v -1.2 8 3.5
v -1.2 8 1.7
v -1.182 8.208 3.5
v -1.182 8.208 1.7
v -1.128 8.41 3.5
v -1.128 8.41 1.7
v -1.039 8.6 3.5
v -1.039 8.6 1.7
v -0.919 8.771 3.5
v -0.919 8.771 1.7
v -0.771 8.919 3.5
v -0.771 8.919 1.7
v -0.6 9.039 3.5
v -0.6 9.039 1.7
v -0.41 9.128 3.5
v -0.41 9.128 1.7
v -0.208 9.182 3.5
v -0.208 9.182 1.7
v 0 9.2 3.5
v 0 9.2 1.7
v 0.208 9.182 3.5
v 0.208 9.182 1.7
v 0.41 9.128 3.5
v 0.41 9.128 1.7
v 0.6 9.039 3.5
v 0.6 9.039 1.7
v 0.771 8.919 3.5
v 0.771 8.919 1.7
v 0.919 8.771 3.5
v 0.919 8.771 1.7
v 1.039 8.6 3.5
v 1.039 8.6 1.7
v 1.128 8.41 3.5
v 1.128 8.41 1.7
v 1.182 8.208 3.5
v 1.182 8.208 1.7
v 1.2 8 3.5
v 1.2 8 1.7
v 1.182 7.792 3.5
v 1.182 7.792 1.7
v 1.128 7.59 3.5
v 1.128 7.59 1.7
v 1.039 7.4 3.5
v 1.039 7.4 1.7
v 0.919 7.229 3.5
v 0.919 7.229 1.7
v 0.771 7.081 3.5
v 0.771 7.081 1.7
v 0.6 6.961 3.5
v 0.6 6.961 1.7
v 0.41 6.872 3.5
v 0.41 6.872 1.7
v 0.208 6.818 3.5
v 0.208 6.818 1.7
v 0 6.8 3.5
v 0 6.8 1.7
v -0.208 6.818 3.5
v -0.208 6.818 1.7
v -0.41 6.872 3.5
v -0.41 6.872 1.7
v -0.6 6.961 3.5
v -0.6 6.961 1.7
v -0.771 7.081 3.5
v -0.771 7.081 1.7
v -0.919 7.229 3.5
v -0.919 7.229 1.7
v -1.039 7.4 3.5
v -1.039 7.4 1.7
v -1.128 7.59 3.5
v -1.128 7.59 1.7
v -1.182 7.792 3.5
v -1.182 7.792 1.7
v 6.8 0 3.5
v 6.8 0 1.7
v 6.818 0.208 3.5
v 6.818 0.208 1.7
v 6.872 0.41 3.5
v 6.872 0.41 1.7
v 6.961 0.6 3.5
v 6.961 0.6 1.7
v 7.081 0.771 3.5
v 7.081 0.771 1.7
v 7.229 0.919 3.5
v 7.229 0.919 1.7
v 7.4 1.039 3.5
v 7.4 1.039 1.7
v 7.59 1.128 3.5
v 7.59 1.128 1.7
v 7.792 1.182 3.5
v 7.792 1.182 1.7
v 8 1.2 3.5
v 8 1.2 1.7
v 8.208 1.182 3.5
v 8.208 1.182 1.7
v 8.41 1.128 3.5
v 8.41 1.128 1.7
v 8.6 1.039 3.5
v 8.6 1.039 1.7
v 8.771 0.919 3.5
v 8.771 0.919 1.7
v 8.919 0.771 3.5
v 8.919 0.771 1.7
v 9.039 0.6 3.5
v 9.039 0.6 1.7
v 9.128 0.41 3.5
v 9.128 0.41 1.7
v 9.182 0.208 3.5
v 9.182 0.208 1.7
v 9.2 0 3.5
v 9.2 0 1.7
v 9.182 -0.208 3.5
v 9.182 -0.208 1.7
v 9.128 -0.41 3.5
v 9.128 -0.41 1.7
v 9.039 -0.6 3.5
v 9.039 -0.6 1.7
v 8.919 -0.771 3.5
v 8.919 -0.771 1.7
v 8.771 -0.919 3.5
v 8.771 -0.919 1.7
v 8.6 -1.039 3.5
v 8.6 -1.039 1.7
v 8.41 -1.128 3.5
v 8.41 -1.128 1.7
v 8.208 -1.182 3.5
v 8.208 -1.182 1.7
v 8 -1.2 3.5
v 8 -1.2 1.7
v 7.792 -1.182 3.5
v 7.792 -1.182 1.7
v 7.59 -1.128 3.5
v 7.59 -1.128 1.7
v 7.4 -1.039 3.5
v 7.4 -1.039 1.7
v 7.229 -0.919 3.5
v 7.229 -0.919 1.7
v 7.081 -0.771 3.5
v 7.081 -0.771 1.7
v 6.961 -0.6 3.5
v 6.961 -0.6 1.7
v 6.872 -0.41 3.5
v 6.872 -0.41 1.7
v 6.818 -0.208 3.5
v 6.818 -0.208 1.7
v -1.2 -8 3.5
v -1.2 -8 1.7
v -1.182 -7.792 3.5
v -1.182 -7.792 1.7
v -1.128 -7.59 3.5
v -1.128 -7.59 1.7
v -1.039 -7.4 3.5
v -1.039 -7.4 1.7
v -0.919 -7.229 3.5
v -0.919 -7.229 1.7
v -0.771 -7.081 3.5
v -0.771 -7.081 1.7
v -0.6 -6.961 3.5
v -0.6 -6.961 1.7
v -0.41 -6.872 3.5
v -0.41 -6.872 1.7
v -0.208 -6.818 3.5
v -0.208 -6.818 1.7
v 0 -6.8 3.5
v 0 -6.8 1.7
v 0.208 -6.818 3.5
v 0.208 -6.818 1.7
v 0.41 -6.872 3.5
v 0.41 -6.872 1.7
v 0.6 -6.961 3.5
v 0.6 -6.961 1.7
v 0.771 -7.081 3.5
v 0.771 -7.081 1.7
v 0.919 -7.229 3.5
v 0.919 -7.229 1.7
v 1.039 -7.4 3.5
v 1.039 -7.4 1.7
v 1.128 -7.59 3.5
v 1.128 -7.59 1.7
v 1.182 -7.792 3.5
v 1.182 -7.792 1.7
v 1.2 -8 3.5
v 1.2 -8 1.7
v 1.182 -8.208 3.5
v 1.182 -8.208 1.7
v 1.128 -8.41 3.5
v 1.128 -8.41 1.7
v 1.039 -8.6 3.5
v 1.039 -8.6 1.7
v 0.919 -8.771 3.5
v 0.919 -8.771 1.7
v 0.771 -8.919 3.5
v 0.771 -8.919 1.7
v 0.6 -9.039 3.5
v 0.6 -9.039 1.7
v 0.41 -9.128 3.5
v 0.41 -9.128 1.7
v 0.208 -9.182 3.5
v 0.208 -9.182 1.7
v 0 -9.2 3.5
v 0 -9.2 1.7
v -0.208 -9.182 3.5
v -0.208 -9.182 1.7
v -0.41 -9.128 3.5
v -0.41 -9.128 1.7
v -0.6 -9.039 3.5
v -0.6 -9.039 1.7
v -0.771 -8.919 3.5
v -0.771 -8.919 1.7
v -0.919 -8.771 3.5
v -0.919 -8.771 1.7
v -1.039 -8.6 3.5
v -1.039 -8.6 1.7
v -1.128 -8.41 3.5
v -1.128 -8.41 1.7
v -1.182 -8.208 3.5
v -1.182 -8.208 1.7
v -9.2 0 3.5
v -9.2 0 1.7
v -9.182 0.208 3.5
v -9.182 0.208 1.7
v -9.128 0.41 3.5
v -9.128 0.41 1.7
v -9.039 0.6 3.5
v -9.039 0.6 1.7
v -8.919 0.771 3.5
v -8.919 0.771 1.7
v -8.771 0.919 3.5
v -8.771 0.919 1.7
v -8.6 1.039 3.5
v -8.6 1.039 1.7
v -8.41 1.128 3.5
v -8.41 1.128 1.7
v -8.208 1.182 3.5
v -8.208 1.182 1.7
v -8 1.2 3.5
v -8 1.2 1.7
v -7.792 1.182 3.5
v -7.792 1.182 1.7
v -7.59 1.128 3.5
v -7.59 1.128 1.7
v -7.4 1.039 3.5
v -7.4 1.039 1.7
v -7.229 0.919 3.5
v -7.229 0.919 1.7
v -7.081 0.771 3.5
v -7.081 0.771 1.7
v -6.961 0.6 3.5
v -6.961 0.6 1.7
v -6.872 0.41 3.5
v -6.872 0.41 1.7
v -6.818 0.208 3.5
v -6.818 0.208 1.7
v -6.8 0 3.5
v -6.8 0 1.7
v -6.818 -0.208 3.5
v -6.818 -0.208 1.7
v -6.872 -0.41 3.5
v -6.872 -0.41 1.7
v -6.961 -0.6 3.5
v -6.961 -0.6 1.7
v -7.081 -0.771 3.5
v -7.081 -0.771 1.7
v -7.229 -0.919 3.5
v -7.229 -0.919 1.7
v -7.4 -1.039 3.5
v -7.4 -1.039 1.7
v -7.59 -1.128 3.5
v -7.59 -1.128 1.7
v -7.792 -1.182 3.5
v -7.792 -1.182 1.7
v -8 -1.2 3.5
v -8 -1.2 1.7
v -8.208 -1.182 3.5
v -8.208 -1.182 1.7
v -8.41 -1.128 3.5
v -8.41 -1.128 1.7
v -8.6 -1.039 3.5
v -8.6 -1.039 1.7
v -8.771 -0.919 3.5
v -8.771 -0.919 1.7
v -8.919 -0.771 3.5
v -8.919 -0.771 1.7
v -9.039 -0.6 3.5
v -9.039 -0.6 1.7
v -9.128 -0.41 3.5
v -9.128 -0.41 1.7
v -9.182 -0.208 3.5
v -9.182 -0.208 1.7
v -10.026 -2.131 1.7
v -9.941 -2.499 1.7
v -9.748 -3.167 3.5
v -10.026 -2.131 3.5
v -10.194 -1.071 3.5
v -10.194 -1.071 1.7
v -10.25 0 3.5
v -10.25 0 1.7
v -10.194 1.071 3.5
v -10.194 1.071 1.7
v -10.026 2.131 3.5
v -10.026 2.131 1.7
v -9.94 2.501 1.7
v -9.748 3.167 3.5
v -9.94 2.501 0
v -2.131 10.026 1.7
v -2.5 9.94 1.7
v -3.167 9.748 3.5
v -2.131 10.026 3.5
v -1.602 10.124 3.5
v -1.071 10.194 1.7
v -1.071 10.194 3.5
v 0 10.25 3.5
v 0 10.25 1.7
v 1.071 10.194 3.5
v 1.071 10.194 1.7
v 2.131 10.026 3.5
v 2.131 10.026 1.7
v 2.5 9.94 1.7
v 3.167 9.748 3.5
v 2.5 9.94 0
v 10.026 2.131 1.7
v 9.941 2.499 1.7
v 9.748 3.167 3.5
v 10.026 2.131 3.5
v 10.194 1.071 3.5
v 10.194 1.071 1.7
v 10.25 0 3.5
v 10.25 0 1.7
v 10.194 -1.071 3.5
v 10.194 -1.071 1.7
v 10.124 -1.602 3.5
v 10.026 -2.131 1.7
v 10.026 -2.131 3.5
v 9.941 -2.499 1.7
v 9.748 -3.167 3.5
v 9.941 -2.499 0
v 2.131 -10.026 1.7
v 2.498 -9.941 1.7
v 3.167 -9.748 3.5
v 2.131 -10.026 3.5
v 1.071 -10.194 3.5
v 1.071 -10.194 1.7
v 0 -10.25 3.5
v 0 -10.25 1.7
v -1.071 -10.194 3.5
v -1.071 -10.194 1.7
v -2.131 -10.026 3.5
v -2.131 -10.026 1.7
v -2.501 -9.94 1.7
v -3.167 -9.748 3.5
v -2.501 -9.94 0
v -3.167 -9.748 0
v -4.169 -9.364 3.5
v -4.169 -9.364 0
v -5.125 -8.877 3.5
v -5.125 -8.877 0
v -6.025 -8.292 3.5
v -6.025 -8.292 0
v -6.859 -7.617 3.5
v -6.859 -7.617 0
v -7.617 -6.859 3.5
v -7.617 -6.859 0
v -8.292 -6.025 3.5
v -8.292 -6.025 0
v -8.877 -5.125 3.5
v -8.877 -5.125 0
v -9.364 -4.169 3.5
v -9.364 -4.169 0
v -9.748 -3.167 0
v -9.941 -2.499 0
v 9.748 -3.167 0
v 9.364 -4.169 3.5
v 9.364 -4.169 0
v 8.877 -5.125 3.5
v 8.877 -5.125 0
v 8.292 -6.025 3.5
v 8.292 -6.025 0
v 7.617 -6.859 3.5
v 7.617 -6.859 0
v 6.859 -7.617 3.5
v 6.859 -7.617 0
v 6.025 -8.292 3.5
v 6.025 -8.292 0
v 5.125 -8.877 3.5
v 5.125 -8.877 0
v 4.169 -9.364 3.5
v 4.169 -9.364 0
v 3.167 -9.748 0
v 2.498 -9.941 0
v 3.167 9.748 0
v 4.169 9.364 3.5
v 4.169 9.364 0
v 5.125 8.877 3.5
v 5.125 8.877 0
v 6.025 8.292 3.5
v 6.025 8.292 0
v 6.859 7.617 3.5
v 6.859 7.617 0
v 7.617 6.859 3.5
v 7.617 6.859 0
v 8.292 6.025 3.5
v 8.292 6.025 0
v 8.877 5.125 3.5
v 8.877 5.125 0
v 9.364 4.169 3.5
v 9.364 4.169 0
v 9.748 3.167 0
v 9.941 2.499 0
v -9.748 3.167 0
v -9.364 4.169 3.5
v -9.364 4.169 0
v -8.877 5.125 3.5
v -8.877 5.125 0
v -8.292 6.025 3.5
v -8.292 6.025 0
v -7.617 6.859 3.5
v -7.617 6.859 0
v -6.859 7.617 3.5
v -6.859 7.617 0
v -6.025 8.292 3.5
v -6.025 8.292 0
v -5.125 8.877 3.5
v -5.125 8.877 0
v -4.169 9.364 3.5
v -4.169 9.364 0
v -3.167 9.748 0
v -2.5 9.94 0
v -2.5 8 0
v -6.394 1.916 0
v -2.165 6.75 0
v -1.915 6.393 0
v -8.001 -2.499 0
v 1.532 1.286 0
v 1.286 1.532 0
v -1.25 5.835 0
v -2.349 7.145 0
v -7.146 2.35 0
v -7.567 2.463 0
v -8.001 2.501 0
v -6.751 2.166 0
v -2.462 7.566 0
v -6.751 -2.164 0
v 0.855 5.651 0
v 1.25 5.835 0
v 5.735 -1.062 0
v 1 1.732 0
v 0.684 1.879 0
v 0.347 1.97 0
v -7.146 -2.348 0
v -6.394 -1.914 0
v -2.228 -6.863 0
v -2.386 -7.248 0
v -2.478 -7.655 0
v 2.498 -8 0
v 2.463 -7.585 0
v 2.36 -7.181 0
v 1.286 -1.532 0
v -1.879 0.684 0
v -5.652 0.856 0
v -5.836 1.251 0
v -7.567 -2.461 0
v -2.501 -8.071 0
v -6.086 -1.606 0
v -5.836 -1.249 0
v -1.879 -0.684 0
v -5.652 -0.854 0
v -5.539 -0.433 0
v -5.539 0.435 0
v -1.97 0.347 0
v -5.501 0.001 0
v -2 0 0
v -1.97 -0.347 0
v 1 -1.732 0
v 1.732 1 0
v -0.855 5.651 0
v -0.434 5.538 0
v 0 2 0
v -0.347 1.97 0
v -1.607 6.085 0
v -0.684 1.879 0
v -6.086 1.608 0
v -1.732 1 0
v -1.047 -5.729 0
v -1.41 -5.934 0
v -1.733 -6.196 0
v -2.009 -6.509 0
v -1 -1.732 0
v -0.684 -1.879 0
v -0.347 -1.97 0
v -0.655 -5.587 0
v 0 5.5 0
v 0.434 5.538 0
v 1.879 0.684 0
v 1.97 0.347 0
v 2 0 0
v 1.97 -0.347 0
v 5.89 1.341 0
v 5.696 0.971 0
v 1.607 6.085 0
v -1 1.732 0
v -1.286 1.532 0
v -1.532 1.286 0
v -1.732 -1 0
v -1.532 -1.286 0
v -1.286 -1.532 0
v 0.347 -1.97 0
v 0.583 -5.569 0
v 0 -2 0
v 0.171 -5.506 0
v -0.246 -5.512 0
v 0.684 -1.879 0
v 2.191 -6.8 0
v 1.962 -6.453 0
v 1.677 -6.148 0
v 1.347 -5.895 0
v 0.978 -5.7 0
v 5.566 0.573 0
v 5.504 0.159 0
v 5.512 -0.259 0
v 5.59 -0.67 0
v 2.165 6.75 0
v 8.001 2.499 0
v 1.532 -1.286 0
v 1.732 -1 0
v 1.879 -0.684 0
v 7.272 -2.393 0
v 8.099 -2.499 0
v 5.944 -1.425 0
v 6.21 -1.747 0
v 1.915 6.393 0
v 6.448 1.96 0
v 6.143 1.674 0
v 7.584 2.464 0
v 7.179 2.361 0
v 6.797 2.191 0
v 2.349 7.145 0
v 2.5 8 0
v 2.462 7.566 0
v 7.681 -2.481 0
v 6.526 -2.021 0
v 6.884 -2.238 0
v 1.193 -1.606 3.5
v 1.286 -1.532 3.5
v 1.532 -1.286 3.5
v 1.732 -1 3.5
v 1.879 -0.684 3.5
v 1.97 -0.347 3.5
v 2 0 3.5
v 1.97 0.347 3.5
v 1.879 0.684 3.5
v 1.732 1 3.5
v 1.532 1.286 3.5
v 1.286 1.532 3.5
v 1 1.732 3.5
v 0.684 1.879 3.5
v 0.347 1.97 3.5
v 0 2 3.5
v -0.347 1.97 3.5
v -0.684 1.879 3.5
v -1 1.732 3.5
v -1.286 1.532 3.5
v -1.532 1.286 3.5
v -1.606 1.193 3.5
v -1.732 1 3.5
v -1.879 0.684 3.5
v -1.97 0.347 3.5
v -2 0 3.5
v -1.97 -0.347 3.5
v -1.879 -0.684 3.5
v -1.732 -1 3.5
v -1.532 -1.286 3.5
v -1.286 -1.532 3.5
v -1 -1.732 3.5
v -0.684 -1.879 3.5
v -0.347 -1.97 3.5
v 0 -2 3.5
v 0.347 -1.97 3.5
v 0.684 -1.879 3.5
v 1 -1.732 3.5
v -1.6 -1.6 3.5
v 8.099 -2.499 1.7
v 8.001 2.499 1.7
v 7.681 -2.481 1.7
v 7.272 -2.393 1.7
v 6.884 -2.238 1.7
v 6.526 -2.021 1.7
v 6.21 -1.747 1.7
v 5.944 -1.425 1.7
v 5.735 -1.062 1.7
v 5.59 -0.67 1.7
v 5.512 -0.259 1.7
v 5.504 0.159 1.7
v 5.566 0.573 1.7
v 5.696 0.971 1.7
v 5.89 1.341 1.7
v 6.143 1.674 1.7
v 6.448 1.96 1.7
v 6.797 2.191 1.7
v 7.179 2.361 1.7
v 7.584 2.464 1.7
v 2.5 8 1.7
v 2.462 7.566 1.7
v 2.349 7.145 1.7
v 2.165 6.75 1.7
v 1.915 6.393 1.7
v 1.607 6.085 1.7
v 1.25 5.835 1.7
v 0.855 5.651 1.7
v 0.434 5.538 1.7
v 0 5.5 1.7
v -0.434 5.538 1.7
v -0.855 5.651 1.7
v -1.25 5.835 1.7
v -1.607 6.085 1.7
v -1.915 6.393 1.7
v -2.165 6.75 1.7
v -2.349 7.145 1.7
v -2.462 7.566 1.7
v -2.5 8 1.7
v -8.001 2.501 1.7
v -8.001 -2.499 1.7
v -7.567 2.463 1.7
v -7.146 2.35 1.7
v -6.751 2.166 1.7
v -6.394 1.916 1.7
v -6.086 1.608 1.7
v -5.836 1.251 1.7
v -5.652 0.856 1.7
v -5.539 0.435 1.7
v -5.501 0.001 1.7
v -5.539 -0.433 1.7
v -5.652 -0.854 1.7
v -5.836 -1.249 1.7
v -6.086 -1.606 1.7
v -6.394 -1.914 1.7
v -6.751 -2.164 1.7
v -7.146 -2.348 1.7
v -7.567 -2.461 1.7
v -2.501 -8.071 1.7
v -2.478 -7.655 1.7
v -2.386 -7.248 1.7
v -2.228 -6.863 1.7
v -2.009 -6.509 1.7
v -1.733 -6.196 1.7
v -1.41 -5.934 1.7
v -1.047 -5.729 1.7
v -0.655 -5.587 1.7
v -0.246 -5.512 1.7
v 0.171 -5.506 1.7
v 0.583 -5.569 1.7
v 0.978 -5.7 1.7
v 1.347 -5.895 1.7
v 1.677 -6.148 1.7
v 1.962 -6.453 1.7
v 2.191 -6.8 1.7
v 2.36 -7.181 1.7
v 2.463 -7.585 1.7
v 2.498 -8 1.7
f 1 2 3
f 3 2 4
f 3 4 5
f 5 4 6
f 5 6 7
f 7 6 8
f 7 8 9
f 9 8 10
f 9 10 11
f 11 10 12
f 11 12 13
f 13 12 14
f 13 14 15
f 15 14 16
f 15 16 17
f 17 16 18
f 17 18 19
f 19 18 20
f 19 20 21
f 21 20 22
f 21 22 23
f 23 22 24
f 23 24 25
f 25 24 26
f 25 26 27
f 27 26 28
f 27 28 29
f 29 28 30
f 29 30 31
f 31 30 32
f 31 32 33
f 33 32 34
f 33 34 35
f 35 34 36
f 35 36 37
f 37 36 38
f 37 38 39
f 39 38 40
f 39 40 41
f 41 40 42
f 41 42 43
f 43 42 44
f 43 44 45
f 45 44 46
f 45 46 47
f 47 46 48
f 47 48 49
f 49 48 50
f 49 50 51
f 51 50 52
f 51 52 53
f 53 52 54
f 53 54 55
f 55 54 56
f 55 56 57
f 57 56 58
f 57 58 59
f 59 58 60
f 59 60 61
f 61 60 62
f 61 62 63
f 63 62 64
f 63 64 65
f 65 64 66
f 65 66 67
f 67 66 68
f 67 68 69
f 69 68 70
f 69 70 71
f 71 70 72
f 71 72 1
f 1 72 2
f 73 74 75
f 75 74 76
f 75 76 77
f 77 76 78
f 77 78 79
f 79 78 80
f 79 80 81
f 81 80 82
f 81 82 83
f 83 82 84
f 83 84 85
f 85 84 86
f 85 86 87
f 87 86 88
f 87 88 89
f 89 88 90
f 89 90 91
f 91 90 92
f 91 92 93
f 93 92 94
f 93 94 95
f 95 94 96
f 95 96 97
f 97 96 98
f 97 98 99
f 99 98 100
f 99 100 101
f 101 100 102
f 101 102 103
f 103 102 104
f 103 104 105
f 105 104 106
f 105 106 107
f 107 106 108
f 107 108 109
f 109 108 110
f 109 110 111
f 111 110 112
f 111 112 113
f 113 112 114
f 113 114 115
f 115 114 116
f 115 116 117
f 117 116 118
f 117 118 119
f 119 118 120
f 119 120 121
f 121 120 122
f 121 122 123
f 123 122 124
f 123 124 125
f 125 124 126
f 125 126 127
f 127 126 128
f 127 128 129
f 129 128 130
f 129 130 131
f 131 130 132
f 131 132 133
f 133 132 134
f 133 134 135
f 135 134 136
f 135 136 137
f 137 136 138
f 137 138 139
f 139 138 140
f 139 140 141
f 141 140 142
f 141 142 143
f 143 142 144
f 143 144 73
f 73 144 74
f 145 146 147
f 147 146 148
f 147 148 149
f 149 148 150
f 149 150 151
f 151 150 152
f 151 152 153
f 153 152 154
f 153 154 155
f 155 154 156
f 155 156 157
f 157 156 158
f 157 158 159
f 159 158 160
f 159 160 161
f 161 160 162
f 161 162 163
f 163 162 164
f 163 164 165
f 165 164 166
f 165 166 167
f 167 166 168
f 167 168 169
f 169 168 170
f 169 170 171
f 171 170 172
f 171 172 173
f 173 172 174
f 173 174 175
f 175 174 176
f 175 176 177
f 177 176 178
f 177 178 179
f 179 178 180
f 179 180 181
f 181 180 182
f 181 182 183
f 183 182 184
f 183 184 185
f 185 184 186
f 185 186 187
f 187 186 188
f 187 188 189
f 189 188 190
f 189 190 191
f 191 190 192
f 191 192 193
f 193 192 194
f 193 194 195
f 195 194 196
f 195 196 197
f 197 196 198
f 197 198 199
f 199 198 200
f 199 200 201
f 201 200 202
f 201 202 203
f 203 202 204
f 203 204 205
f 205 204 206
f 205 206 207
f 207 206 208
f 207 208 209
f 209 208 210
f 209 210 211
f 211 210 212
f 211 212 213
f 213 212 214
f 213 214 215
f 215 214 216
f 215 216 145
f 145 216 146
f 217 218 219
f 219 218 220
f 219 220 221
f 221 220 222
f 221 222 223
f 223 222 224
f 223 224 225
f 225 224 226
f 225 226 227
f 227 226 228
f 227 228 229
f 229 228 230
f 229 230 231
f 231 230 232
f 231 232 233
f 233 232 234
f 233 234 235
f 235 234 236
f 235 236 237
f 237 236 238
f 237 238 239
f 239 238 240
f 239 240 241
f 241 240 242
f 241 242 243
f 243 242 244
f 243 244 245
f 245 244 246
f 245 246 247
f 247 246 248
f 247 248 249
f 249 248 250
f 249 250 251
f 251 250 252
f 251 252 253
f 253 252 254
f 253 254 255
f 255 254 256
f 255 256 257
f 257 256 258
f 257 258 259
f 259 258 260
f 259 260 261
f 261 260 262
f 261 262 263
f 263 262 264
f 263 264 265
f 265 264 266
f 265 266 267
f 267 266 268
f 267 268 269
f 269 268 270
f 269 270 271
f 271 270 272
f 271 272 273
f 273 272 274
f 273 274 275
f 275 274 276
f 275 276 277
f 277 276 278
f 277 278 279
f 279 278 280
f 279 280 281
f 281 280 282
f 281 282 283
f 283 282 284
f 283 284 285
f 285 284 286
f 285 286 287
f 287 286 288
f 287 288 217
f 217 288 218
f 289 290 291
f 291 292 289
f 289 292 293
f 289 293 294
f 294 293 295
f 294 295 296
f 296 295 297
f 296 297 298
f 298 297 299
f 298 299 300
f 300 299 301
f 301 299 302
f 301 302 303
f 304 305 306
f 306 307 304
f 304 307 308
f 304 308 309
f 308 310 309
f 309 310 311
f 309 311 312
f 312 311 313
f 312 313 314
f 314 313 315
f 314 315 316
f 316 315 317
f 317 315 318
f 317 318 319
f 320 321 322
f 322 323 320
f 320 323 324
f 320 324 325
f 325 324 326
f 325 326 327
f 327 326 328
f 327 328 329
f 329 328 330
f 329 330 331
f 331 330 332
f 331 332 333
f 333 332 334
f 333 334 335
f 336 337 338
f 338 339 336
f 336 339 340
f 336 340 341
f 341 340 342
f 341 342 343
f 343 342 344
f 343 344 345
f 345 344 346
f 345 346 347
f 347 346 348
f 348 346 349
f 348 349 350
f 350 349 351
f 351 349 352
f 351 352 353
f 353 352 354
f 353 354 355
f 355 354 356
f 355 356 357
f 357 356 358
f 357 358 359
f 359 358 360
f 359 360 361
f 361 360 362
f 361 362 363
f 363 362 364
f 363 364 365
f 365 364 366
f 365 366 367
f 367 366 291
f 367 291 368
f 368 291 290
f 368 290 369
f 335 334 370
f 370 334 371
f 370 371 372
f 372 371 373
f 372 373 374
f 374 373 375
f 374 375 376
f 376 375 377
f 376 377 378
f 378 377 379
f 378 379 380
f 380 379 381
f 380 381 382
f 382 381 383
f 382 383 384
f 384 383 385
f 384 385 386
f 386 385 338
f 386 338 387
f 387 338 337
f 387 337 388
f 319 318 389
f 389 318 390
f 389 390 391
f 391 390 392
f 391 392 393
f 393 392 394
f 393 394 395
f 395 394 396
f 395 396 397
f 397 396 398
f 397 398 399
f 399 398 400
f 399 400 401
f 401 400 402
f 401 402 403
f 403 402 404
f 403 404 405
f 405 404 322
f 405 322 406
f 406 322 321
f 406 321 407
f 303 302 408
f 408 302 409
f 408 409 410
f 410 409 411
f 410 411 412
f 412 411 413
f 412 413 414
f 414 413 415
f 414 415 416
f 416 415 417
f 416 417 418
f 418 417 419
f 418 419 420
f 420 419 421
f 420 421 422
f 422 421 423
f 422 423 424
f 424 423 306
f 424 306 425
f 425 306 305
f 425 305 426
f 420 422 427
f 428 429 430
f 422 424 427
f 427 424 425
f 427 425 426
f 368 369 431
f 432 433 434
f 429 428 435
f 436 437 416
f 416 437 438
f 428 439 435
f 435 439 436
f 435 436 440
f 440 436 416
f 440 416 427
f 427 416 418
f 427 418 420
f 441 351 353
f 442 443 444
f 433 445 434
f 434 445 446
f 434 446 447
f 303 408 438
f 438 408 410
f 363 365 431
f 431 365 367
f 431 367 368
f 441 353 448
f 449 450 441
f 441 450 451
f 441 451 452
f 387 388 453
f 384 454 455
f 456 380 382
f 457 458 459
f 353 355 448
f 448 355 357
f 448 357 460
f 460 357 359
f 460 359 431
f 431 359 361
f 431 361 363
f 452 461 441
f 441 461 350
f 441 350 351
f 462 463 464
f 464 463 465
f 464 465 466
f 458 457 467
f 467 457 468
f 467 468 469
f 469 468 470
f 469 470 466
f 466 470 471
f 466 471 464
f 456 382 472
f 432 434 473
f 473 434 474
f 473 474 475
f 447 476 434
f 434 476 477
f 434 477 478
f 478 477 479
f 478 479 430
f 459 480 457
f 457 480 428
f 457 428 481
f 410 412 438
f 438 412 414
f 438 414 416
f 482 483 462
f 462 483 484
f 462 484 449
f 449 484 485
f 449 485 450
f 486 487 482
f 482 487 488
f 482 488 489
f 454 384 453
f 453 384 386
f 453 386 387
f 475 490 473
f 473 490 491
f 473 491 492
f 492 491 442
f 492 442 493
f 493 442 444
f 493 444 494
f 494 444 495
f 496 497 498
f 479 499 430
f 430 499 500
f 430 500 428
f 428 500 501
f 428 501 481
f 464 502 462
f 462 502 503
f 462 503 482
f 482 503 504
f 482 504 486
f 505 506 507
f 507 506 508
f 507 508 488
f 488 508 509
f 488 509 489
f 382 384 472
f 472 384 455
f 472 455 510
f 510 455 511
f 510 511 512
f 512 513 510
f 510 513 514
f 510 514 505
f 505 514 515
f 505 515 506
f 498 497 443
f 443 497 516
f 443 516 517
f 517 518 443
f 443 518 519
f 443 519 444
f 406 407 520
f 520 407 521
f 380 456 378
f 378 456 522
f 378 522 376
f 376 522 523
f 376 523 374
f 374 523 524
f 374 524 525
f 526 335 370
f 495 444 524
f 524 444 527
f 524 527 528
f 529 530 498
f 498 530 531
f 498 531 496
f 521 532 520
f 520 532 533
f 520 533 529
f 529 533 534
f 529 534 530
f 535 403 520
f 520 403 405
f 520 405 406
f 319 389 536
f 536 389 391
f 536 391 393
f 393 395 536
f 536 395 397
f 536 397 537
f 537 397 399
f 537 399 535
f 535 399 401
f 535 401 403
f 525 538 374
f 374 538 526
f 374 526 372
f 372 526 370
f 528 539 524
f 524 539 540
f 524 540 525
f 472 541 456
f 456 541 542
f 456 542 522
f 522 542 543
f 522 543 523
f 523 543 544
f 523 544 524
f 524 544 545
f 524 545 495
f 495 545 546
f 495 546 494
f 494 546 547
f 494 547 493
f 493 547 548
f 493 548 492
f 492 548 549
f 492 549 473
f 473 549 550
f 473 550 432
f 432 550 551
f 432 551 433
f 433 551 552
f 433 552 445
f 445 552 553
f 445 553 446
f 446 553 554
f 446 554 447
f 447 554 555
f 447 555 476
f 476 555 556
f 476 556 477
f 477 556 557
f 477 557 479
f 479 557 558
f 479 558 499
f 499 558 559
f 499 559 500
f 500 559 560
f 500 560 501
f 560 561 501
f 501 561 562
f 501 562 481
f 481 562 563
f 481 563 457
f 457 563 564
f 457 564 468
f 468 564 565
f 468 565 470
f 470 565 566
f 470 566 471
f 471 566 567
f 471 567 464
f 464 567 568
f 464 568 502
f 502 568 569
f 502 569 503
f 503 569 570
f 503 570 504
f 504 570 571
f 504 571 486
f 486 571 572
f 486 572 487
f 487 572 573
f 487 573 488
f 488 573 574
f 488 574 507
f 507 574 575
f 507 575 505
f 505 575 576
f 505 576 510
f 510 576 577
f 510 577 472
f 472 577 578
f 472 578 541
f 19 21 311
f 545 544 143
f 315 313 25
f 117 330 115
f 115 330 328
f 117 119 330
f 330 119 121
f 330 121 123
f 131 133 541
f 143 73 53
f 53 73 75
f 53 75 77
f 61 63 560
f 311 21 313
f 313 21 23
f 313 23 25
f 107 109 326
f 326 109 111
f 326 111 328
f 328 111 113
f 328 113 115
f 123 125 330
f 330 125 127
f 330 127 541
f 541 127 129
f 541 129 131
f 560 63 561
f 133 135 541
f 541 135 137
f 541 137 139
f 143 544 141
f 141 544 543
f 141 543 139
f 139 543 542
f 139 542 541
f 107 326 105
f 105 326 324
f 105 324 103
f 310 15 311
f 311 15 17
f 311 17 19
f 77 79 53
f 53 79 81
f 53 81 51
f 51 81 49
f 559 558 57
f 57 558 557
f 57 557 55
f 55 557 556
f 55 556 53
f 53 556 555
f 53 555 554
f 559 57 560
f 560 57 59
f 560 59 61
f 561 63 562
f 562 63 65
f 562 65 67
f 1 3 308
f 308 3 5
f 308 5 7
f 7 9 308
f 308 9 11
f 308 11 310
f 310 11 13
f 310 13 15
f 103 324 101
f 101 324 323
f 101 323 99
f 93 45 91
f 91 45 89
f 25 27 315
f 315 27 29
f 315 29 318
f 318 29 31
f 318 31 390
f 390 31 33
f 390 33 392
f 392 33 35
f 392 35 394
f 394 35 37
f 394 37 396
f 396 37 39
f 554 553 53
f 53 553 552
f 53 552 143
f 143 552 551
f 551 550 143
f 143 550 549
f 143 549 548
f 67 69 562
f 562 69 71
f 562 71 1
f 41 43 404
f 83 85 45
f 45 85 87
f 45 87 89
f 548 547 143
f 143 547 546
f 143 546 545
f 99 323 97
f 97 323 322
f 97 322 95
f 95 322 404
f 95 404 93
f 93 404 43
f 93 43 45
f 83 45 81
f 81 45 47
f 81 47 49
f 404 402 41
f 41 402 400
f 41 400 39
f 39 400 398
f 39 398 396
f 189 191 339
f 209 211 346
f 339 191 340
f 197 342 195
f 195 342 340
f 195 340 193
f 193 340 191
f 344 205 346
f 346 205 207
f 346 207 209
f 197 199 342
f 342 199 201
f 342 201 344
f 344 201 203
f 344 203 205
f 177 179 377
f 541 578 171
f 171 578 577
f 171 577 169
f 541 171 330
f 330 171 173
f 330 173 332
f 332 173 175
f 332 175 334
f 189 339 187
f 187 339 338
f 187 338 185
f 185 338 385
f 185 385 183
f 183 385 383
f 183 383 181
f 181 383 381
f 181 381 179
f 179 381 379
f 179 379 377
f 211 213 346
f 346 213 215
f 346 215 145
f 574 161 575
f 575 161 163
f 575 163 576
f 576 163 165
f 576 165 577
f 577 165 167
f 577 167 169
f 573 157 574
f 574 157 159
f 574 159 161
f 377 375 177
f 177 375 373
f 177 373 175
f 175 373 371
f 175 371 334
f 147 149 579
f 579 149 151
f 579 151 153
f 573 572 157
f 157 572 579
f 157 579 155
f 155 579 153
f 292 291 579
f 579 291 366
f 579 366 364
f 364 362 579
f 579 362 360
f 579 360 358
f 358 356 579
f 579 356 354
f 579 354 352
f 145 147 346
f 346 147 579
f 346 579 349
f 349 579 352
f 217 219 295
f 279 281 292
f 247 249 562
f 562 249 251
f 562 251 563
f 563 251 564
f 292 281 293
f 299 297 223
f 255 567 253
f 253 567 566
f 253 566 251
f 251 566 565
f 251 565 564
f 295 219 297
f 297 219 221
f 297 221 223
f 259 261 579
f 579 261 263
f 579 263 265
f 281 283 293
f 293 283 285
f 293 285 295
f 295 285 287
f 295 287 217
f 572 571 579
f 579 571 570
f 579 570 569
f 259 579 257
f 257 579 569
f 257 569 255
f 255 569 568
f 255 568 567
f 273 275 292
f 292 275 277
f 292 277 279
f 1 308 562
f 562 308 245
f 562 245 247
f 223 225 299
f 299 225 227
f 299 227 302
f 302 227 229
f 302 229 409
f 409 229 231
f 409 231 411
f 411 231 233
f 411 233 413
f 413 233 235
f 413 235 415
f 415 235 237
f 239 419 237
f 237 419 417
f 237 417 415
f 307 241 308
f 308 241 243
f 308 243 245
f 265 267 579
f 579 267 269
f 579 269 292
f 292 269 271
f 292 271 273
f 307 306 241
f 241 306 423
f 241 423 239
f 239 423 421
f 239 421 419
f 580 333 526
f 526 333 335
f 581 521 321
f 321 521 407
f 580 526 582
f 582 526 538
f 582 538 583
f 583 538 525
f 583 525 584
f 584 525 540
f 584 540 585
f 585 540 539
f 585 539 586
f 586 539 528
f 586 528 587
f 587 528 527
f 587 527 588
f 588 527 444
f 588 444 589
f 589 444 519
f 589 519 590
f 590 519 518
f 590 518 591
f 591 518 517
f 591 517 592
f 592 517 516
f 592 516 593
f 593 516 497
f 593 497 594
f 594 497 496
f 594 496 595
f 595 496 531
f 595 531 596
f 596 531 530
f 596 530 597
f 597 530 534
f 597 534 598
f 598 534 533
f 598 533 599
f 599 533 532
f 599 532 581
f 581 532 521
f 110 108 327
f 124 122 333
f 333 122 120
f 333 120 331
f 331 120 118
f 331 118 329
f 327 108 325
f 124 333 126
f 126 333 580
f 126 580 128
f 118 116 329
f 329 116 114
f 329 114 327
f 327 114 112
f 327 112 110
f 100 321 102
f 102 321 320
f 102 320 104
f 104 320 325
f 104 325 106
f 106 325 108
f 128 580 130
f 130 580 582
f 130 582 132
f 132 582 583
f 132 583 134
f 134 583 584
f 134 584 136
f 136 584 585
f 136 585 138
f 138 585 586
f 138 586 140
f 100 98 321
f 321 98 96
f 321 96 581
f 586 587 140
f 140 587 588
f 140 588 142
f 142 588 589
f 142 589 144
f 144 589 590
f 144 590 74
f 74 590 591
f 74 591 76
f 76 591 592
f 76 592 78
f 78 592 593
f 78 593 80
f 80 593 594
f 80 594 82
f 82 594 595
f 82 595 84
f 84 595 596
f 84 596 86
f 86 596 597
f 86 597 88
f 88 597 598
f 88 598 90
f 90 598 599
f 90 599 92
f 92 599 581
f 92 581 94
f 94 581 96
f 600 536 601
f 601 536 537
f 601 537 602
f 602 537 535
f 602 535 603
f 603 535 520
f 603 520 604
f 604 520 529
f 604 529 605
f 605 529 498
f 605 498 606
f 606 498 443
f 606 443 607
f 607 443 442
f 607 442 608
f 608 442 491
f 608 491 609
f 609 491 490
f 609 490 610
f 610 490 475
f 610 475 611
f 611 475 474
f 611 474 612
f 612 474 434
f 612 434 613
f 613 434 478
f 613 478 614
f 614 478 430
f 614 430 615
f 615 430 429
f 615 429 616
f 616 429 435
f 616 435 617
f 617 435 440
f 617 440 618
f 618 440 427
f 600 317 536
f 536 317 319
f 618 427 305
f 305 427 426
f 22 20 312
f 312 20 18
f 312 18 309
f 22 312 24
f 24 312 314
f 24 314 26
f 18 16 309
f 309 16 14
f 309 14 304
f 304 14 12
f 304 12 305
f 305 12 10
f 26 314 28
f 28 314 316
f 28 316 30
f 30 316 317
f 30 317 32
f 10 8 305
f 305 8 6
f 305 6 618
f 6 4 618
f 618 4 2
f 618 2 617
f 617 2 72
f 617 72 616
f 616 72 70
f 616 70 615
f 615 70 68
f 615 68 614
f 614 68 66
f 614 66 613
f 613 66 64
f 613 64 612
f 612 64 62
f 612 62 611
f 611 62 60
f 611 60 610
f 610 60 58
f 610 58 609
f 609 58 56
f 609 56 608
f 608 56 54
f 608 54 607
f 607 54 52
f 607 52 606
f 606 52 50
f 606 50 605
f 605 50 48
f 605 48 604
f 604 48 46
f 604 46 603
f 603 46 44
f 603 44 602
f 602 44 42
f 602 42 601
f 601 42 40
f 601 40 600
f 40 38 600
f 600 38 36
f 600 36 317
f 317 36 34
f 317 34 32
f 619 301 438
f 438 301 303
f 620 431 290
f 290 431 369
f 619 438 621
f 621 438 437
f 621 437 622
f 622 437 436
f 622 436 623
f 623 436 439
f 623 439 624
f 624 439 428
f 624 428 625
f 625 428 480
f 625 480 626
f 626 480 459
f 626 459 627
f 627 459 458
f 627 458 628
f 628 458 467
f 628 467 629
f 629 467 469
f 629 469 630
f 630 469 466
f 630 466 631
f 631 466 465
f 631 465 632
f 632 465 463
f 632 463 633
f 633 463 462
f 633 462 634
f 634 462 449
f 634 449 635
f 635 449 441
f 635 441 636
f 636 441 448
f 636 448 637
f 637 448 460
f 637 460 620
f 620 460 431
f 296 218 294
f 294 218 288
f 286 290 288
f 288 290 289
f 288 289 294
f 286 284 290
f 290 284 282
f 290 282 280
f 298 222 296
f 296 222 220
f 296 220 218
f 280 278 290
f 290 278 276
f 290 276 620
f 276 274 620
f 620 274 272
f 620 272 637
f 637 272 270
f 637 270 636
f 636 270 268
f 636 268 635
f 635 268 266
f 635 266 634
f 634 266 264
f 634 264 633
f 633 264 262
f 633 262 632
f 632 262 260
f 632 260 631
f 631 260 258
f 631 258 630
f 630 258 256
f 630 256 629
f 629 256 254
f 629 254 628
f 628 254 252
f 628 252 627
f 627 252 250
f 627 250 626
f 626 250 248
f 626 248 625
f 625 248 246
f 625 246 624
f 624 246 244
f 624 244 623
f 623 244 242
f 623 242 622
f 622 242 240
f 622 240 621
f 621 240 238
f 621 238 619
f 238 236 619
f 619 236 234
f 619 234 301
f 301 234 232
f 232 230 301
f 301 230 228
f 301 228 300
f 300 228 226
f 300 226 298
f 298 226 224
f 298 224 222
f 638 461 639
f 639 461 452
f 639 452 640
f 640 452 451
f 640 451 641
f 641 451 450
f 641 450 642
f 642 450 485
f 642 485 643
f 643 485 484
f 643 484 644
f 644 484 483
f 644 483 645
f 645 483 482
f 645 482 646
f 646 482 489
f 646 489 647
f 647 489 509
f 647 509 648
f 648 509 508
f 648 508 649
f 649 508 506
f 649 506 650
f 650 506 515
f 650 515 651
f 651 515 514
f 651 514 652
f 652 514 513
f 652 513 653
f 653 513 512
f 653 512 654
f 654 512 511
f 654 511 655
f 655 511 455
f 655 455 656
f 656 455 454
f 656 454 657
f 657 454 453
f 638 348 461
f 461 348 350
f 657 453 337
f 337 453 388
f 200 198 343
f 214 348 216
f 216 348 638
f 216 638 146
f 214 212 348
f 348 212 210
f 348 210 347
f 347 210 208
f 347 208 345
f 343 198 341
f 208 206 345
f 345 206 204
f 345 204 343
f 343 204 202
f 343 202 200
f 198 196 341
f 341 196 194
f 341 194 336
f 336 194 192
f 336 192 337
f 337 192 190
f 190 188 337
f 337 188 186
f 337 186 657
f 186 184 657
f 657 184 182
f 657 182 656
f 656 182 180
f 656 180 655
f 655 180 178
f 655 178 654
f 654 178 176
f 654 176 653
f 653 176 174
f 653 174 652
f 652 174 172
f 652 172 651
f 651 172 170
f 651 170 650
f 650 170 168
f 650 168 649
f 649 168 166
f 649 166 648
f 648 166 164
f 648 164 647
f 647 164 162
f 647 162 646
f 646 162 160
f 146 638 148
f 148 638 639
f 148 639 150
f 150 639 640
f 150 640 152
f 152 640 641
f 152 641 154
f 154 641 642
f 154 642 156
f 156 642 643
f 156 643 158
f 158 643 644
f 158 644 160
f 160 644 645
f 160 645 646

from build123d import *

# Parameters (mm, degrees)
SKETCH1_R              = 10.25
SKETCH1_R_2            = 2
SKETCH1_R_3            = 1.2
BOSS_EXTRUDE1_DEPTH    = 3.5
CUT_EXTRUDE2_START     = -1.7
CUT_EXTRUDE2_OUTLINE_R = 1.2
CUT_EXTRUDE2_DEPTH     = 1.7


# Read off the part's stored shape, not the designer's step: Cut-Extrude2
with BuildPart() as part:
    # Sketch1 → Boss-Extrude1 (new body)
    with BuildSketch(Plane.XY):
        Circle(SKETCH1_R)
        Circle(SKETCH1_R_2, mode=Mode.SUBTRACT)
        with Locations((0, 8)):
            Circle(SKETCH1_R_3, mode=Mode.SUBTRACT)
        with Locations((8, 0)):
            Circle(SKETCH1_R_3, mode=Mode.SUBTRACT)
        with Locations((0, -8)):
            Circle(SKETCH1_R_3, mode=Mode.SUBTRACT)
        with Locations((-8, 0)):
            Circle(SKETCH1_R_3, mode=Mode.SUBTRACT)
    extrude(amount=BOSS_EXTRUDE1_DEPTH)

    # Cut-Extrude2 outline → Cut-Extrude2 (cut)
    # profile 1 of 4: a face of its own
    with BuildSketch(Plane(origin=(0, 0, 0), x_dir=(-1, 0, 0), z_dir=(0, 0, -1)).offset(CUT_EXTRUDE2_START)):
        with BuildLine():
            Line((-9.94069912, -2.499), (-8.098979998, -2.499))
            ThreePointArc((-8.098979998, -2.499), (-5.49948025, -0.050000196), (-8.000999999, 2.4989992))
            Line((-8.000999999, 2.4989992), (-9.940699321, 2.4989992))
            ThreePointArc((-9.940699321, 2.4989992), (-10.25, -4.12e-07), (-9.94069912, -2.499))
        make_face()
        with Locations((-8, 0)):
            Circle(CUT_EXTRUDE2_OUTLINE_R, mode=Mode.SUBTRACT)
    # profile 2 of 4: a face of its own
    with BuildSketch(Plane(origin=(0, 0, 0), x_dir=(-1, 0, 0), z_dir=(0, 0, -1)).offset(CUT_EXTRUDE2_START)):
        with BuildLine():
            Line((-2.498, -8), (-2.498, -9.940950458))
            ThreePointArc((-2.498, -9.940950458), (0.001546691, -10.249999883), (2.501, -9.940196125))
            Line((2.501, -9.940196125), (2.5010004, -8.070689462))
            ThreePointArc((2.5010004, -8.070689462), (0.037348265, -5.500249912), (-2.498, -8))
        make_face()
        with Locations((0, -8)):
            Circle(CUT_EXTRUDE2_OUTLINE_R, mode=Mode.SUBTRACT)
    # profile 3 of 4: a face of its own
    with BuildSketch(Plane(origin=(0, 0, 0), x_dir=(-1, 0, 0), z_dir=(0, 0, -1)).offset(CUT_EXTRUDE2_START)):
        with BuildLine():
            ThreePointArc((2.5, 9.940447676), (0, 10.25), (-2.5, 9.940447676))
            Line((-2.5, 9.940447676), (-2.5, 8))
            ThreePointArc((-2.5, 8), (0, 5.5), (2.5, 8))
            Line((2.5, 8), (2.5, 9.940447676))
        make_face()
        with Locations((0, 8)):
            Circle(CUT_EXTRUDE2_OUTLINE_R, mode=Mode.SUBTRACT)
    # profile 4 of 4: a face of its own
    with BuildSketch(Plane(origin=(0, 0, 0), x_dir=(-1, 0, 0), z_dir=(0, 0, -1)).offset(CUT_EXTRUDE2_START)):
        with BuildLine():
            Line((8.001, -2.499), (9.94069912, -2.499))
            ThreePointArc((9.94069912, -2.499), (10.249999948, 0.001031141), (9.940196125, 2.501))
            Line((9.940196125, 2.501), (8.001, 2.501))
            ThreePointArc((8.001, 2.501), (5.501, 0.001), (8.001, -2.499))
        make_face()
        with Locations((8, 0)):
            Circle(CUT_EXTRUDE2_OUTLINE_R, mode=Mode.SUBTRACT)
    extrude(amount=CUT_EXTRUDE2_DEPTH, mode=Mode.SUBTRACT)


solid = part.part
